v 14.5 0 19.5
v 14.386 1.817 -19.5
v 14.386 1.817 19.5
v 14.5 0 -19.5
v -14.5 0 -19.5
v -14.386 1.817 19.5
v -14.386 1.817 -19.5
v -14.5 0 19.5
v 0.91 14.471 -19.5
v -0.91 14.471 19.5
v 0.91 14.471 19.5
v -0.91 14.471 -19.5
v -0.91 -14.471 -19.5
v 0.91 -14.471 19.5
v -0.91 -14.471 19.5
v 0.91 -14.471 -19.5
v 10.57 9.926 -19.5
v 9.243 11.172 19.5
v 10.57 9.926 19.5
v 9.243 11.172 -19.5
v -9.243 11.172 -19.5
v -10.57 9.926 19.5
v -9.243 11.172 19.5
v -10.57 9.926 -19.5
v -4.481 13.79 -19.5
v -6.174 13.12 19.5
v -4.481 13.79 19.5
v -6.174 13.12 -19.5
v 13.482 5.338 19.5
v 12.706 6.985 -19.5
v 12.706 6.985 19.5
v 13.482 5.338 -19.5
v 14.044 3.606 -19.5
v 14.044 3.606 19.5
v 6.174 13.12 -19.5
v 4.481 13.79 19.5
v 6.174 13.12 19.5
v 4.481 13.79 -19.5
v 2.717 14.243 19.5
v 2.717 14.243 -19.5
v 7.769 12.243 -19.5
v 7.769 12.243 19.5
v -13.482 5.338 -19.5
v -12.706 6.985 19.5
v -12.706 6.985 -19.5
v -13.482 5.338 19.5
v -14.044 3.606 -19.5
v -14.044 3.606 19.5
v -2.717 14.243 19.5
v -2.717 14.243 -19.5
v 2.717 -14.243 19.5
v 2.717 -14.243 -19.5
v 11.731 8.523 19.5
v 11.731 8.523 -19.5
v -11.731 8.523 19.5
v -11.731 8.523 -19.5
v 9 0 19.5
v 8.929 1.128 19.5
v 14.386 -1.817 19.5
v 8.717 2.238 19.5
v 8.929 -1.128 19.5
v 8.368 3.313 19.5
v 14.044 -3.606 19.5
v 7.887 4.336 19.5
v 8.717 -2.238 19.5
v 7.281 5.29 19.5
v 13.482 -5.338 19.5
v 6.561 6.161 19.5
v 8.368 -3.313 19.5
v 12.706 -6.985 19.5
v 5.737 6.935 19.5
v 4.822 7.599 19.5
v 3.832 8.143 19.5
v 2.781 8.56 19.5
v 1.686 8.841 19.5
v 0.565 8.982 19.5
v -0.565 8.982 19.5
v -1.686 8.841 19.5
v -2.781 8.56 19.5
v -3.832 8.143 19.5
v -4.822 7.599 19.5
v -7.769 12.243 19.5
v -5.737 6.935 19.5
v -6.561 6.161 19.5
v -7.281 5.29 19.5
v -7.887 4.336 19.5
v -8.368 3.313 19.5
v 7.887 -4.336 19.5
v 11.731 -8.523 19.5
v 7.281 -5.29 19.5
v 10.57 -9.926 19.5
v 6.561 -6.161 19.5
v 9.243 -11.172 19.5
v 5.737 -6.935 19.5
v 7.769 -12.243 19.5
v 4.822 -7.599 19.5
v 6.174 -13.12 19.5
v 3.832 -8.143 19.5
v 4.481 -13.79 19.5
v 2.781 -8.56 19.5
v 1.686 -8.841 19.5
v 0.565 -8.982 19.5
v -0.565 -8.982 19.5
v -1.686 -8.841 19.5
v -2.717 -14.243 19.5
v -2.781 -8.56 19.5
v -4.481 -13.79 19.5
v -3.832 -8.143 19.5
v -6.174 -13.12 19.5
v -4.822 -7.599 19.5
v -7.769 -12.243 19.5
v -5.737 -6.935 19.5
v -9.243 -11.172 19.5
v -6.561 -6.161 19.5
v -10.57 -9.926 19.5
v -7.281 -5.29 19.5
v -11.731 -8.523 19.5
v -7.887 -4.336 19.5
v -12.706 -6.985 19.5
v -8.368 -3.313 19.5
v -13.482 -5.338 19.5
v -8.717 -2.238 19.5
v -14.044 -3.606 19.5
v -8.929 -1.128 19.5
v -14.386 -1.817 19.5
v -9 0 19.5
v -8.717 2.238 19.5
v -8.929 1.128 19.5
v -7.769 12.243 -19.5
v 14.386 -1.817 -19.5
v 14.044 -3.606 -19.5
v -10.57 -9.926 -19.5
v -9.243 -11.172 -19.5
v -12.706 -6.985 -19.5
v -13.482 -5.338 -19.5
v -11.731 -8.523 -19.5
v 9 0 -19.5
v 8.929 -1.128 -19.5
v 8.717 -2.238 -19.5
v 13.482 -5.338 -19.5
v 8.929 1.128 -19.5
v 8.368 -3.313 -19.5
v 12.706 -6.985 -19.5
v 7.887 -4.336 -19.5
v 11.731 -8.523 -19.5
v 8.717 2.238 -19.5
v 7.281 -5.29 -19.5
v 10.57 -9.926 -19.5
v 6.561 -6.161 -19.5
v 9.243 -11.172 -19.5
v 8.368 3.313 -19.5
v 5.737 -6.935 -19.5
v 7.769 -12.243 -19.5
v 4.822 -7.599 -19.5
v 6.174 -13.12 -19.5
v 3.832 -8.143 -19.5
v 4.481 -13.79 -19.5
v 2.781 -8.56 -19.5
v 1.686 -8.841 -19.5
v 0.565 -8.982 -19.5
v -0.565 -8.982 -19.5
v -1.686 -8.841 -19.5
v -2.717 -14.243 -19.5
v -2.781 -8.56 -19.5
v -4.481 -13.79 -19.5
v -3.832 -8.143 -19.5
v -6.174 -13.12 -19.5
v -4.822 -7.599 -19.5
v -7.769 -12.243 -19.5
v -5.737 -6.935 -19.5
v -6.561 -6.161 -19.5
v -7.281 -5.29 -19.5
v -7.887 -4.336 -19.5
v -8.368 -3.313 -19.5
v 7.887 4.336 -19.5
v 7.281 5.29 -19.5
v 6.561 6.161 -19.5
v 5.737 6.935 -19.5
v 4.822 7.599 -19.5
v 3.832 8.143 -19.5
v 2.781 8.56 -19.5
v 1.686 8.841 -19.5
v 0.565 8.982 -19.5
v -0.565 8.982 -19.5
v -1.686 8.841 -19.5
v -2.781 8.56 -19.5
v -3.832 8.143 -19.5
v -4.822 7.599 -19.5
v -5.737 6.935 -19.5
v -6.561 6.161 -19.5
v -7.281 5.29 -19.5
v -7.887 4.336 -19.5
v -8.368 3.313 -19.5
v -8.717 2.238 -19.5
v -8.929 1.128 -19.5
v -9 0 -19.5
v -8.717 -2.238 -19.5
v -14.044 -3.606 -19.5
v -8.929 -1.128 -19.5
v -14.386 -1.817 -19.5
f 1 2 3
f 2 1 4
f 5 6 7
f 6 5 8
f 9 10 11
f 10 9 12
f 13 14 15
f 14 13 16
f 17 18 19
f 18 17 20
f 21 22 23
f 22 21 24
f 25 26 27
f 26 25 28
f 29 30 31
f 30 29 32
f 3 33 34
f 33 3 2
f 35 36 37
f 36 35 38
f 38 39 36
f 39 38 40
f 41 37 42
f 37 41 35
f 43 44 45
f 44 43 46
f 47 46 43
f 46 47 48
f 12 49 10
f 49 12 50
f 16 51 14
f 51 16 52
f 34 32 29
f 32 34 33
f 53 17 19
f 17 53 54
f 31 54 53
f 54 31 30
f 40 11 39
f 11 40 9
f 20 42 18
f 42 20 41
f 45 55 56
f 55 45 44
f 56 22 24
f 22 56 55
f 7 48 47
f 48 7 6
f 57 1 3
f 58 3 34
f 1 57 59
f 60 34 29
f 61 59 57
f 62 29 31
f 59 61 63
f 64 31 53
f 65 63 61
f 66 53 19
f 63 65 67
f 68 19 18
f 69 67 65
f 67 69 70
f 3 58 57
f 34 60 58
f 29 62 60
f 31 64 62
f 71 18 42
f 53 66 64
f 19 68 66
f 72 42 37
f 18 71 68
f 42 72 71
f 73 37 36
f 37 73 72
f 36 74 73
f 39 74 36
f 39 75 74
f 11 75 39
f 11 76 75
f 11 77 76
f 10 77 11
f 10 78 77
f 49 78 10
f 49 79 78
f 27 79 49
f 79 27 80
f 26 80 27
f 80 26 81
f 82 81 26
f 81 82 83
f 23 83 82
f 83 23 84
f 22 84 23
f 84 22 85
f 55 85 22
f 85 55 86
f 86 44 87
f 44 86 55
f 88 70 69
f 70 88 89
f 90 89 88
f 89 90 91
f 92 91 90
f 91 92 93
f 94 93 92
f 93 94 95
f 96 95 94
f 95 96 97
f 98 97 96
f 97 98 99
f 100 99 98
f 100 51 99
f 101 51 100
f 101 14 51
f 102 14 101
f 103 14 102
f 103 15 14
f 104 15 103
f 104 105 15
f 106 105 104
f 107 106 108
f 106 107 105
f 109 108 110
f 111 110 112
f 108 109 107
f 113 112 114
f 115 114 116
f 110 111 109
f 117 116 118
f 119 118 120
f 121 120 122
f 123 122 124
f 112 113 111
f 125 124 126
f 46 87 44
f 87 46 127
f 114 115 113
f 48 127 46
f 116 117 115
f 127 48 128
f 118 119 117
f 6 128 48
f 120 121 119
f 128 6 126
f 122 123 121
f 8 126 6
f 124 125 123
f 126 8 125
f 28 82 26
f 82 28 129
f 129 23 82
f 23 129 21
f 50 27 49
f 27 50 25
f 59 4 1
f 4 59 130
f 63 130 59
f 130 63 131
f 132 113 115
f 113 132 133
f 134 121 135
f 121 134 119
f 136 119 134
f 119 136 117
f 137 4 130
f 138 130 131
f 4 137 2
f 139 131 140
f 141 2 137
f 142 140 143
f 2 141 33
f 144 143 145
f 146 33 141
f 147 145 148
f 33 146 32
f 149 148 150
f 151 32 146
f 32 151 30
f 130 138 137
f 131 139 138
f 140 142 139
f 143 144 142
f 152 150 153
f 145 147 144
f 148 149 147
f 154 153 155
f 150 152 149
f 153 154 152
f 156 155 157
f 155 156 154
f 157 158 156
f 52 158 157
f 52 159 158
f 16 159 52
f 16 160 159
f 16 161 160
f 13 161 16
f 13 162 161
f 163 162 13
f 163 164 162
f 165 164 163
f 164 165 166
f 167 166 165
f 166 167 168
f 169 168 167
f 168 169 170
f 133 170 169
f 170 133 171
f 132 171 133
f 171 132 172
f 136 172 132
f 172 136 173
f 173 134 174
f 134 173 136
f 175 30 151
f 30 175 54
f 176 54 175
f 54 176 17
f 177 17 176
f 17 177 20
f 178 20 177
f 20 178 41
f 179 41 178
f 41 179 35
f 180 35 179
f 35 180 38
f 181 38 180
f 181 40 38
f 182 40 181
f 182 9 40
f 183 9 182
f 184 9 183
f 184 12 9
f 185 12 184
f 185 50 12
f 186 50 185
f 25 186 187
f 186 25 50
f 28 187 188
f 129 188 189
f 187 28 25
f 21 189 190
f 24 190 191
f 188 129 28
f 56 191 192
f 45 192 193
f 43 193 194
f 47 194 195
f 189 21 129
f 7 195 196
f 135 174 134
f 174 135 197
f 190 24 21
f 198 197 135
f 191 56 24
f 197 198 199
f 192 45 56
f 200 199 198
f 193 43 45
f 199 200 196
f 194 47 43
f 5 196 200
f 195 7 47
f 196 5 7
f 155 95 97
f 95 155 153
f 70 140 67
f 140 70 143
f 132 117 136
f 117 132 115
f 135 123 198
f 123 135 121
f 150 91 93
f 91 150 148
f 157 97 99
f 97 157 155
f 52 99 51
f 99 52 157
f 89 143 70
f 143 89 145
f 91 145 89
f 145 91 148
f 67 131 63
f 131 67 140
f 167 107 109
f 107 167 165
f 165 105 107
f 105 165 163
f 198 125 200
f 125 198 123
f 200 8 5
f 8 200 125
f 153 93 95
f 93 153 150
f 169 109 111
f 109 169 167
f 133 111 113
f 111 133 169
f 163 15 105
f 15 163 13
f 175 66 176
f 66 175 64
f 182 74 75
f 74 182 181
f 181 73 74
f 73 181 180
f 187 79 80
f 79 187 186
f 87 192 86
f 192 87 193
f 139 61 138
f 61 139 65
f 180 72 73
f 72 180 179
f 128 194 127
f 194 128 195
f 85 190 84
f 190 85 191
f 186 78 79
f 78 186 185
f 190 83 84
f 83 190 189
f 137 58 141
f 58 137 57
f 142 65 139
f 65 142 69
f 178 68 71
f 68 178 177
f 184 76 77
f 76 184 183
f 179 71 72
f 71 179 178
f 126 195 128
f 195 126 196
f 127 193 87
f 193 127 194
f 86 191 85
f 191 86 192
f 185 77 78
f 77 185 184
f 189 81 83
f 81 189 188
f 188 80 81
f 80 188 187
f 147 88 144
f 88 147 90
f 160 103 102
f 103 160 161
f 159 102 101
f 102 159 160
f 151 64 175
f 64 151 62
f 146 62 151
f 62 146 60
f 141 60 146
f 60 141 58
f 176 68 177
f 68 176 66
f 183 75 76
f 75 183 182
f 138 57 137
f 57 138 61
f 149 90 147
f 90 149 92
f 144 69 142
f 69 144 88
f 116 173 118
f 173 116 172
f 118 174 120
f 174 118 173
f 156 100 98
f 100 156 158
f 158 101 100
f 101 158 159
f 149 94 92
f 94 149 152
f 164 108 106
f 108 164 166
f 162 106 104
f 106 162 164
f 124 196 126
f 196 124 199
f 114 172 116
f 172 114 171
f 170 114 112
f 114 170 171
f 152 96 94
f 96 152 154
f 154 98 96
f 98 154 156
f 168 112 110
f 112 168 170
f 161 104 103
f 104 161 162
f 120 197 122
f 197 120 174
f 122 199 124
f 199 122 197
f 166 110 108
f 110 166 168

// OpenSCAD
$fn = 50;


difference() {
	union() {
		translate(v = [0, 0, -19.5000000000]) {
			cylinder(h = 39, r = 14.5000000000);
		}
	}
	union() {
		translate(v = [0, 0, -100.0000000000]) {
			cylinder(h = 200, r = 9);
		}
	}
}
